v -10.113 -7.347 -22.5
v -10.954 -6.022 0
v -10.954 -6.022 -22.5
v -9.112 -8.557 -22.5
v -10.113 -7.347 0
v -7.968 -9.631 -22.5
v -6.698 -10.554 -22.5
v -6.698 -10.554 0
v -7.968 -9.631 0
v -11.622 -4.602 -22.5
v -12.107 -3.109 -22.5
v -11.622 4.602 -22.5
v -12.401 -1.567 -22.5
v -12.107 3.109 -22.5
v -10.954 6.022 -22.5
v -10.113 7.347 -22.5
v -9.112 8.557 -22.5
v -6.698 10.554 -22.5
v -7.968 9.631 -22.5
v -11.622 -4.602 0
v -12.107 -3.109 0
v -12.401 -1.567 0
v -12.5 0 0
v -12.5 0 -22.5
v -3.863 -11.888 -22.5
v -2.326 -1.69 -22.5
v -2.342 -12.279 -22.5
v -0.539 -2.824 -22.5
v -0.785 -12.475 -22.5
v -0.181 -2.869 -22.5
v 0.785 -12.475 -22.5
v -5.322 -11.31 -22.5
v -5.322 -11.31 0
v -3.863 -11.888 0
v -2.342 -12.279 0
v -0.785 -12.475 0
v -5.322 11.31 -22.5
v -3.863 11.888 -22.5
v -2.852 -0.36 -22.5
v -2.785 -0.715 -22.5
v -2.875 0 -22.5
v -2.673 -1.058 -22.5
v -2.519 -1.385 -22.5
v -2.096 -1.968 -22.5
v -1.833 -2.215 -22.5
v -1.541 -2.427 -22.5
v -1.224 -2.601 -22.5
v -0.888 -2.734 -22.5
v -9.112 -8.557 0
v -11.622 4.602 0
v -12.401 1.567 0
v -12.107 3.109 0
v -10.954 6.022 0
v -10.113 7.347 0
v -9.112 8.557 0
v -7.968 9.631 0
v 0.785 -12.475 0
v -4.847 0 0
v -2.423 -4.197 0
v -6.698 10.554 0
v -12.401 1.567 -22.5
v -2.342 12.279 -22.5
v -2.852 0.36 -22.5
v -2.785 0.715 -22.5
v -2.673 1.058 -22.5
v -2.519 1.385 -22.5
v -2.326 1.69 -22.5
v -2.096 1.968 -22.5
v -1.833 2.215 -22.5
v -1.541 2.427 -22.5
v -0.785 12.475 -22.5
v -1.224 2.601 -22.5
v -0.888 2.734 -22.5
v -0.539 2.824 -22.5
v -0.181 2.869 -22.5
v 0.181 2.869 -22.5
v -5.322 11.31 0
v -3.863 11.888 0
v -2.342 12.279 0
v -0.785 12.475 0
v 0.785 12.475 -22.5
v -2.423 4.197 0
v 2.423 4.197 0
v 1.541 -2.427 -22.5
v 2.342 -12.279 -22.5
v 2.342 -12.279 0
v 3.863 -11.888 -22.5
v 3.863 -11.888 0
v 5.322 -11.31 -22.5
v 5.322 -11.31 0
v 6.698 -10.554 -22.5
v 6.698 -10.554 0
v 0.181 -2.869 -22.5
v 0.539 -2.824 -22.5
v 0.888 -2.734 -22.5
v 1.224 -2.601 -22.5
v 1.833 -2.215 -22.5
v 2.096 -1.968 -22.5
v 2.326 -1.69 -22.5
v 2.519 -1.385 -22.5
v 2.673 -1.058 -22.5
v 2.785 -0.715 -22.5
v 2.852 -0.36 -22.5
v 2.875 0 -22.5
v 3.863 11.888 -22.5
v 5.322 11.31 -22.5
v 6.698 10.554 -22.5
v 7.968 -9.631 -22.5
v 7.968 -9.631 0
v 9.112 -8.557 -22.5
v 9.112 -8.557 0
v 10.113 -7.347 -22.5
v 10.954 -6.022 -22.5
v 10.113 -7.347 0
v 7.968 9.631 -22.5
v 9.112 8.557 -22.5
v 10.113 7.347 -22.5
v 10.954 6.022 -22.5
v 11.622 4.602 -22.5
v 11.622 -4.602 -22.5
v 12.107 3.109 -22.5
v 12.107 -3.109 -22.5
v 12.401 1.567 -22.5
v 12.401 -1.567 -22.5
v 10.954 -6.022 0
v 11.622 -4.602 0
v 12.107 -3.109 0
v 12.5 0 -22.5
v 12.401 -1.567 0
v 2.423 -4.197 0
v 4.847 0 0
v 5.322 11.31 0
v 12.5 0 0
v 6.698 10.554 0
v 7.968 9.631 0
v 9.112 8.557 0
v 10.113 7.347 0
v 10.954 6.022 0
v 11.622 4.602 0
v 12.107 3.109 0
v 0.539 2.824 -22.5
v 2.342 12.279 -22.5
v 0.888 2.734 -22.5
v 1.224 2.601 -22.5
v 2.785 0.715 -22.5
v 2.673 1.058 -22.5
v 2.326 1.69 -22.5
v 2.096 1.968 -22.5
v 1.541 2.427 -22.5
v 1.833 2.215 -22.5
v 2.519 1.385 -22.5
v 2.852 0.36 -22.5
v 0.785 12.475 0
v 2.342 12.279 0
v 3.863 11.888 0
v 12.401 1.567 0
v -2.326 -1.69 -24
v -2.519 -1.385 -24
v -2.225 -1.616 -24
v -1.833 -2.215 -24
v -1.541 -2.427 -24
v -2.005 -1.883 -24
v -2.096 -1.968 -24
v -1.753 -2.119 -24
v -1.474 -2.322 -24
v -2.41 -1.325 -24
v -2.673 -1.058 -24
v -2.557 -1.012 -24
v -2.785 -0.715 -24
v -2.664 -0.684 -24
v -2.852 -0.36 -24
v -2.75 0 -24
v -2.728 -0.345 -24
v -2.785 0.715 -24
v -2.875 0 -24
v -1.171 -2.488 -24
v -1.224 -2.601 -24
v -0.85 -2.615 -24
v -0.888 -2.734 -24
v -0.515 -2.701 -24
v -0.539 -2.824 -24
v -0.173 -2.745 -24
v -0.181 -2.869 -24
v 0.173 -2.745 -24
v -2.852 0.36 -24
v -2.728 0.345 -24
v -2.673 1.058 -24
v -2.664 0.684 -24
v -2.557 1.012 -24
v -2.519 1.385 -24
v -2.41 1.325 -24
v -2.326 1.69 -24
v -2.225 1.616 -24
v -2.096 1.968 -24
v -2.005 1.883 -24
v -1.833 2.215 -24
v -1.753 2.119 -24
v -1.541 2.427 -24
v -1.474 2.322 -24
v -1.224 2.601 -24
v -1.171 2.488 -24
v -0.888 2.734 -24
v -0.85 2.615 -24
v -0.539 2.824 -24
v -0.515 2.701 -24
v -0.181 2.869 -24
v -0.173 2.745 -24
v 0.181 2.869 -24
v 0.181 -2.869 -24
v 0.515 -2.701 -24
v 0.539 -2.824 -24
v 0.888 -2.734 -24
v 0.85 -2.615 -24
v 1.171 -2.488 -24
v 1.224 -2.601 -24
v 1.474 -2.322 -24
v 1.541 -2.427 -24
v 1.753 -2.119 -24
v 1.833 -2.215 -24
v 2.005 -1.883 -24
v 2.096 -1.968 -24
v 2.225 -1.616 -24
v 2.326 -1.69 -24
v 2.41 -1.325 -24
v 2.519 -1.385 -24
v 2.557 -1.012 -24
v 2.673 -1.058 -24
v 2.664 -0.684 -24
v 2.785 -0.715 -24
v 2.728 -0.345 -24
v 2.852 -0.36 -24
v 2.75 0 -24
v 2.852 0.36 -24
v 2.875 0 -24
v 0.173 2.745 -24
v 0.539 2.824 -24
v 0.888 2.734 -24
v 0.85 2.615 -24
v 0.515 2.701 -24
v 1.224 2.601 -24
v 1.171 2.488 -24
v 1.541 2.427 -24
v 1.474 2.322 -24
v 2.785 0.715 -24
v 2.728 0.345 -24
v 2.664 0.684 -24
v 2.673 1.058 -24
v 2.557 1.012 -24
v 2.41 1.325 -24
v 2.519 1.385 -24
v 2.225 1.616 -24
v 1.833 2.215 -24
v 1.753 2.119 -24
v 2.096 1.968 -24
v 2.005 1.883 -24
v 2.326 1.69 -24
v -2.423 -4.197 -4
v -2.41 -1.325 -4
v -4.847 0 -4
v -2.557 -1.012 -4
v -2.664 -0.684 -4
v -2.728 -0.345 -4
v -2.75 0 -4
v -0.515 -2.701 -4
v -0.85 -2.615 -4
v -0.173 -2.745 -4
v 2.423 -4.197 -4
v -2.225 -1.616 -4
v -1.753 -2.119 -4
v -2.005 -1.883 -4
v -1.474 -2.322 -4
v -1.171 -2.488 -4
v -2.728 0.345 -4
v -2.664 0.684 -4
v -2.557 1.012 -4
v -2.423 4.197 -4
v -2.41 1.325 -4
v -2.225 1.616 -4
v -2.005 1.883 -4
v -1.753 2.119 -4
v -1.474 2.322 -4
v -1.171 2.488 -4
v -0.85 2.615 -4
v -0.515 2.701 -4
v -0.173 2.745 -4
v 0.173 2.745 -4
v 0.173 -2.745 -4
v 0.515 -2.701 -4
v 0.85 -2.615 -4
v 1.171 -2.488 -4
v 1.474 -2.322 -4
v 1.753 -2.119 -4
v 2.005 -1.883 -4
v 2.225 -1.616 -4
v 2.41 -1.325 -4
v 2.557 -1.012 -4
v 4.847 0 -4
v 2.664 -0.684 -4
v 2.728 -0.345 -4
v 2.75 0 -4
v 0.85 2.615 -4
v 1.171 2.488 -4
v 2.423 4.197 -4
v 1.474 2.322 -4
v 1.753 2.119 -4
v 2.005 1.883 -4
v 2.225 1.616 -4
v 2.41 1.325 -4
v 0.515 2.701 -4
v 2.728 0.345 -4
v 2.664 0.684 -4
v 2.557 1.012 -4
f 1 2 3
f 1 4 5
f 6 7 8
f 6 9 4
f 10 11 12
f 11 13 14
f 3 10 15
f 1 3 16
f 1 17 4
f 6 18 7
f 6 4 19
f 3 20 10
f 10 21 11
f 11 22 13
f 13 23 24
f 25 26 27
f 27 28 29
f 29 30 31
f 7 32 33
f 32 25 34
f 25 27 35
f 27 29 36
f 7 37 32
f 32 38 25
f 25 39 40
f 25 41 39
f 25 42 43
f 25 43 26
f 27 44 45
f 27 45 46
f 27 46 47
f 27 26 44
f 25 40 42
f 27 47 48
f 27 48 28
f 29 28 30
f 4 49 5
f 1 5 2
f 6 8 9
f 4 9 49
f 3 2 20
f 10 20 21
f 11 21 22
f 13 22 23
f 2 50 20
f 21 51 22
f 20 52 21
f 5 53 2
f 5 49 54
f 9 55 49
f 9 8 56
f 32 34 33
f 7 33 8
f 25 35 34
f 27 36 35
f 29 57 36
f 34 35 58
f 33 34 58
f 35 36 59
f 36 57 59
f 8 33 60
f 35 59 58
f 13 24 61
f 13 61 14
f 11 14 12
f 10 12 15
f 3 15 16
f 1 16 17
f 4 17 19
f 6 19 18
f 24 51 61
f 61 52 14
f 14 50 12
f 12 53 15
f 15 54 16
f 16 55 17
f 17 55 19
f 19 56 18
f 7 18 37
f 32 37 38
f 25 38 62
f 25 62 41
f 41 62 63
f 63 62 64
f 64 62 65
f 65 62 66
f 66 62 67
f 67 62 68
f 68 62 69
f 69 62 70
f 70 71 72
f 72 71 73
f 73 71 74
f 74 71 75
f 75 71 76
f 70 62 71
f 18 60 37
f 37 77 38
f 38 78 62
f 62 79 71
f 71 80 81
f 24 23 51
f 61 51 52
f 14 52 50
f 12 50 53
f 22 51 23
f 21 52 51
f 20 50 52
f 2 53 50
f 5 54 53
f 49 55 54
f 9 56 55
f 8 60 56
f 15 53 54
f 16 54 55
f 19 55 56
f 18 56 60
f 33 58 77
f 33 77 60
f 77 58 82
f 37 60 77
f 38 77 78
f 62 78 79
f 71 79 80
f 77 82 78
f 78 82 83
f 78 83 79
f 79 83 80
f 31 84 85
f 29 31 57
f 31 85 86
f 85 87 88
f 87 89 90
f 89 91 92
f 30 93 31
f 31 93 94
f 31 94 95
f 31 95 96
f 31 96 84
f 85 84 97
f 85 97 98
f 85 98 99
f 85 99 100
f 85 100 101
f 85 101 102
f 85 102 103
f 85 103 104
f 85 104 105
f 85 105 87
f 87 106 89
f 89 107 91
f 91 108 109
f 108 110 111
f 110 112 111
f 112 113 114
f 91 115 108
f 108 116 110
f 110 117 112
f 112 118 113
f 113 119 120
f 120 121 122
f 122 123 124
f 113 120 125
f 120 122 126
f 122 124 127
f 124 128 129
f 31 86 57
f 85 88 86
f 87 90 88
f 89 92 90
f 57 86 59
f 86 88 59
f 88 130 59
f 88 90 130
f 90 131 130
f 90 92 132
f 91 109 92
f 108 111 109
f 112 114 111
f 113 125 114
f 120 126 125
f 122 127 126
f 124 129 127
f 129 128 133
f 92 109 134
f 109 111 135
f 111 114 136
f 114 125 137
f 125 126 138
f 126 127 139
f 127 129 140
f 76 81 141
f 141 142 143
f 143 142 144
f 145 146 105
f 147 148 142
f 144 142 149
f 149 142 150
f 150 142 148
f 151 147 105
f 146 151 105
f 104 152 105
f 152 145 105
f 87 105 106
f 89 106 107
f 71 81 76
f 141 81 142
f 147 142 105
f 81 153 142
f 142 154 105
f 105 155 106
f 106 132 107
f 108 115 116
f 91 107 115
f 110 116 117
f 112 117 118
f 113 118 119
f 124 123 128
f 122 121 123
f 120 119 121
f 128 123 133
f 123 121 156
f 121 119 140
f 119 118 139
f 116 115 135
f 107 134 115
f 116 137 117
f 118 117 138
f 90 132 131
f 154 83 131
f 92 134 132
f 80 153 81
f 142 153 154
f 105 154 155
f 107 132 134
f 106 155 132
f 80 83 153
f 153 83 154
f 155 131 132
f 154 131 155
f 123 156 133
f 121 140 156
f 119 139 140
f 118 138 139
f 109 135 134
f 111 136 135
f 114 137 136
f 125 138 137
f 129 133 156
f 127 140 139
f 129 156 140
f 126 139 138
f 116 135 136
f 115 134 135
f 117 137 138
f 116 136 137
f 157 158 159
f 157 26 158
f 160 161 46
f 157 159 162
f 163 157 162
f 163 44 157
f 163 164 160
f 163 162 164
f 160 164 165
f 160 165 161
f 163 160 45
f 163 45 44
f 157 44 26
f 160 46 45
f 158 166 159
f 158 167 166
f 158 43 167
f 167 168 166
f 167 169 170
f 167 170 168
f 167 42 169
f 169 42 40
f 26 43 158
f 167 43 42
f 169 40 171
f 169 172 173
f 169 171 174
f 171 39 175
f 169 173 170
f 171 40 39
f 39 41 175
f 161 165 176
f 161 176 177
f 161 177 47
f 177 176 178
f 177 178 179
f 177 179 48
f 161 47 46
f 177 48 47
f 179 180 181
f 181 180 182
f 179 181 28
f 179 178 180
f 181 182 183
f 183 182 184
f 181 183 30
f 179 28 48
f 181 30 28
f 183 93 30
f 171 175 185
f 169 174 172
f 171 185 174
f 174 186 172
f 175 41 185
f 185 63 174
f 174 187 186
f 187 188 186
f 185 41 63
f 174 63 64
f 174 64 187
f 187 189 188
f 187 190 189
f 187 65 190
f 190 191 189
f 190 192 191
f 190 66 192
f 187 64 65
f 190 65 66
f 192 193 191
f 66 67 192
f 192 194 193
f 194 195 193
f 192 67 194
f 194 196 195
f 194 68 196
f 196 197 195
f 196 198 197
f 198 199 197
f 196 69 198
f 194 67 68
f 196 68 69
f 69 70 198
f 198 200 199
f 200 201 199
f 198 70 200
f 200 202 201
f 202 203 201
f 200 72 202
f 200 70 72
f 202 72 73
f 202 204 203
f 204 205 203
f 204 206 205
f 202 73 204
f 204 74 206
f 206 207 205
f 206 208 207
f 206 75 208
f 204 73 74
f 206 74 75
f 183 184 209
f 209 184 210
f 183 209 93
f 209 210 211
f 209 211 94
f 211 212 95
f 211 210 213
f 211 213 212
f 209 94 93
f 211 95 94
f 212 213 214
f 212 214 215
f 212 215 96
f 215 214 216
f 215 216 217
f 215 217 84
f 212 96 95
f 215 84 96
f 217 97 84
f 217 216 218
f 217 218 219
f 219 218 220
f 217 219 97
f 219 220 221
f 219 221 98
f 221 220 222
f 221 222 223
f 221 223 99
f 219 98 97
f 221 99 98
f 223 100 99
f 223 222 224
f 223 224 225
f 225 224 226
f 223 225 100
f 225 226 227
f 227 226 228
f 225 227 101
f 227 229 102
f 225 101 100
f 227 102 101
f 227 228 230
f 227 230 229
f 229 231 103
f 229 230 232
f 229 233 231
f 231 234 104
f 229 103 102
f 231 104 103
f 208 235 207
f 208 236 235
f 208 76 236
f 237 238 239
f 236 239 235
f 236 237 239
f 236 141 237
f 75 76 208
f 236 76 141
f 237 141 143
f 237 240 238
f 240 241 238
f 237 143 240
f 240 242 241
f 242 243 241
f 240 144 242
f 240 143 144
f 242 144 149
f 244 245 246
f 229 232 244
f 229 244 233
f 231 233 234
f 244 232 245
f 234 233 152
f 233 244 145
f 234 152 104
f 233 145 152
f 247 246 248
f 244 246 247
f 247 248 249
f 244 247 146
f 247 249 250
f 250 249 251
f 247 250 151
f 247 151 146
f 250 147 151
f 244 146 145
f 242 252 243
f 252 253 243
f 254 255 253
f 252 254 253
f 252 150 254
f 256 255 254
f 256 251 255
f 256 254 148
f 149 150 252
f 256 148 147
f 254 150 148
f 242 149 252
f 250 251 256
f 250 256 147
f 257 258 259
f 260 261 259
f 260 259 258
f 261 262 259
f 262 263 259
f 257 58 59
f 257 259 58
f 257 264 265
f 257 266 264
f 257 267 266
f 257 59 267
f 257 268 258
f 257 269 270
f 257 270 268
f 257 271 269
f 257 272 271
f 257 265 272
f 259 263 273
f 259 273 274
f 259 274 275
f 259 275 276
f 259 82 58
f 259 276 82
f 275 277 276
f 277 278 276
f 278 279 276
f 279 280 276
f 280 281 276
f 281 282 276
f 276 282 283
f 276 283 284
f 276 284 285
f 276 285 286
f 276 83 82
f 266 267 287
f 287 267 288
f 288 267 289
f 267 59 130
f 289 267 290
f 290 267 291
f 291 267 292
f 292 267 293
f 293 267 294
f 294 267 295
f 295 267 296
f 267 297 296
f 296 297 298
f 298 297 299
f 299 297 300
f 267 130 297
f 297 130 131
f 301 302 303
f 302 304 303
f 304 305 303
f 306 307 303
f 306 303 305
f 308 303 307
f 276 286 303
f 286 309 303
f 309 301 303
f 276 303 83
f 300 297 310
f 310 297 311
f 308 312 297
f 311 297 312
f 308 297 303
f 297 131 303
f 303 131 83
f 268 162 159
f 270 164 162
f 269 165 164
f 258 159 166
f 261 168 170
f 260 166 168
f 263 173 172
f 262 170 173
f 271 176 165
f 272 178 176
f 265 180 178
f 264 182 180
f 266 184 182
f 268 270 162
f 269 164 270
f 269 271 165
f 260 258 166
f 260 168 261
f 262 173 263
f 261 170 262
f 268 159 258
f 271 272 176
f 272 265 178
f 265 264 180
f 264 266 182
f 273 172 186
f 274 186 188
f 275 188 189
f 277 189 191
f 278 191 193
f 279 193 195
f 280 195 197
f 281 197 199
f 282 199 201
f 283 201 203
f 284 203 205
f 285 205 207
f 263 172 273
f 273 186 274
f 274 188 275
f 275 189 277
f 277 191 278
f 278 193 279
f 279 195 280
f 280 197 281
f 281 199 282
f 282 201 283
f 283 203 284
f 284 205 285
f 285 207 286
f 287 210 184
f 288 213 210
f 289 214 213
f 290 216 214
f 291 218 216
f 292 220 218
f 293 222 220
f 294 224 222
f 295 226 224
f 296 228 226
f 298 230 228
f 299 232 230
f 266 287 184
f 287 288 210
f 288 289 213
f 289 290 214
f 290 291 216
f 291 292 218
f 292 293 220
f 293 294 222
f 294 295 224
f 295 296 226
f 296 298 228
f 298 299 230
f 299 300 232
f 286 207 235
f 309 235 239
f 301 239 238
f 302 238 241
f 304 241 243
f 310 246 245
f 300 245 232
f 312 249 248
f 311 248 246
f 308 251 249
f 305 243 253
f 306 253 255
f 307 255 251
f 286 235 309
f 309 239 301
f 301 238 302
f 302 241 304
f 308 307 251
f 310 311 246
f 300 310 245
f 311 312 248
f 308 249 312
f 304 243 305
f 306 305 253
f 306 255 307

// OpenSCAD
$fn = 50;

difference() {
	union() {
		translate(v = [0, 0, -22.5]) {
			cylinder(h = 22.5, r = 12.5);
		}
		#translate(v = [0, 0, -24.0]) {
			cylinder(h = 24, r = 2.875);
		}
	}
	union() {
		translate(v = [0, 0, 0]) {
			rotate(a = [0, 0, 0]) {
				difference() {
					union() {
						translate(v = [0, 0, -4]) {
							linear_extrude(height = 4) {
								polygon(points = [[4.8468, 0.0], [2.4234000000000004, 4.197451927062417], [-2.423399999999999, 4.197451927062417], [-4.8468, 5.935618106107392e-16], [-2.423400000000002, -4.197451927062416], [2.423399999999997, -4.197451927062419]]);
							}
						}
					}
					union();
				}
			}
		}
		#translate(v = [0, 0, -100.0]) {
			cylinder(h = 200, r = 2.75);
		}
	}
}
